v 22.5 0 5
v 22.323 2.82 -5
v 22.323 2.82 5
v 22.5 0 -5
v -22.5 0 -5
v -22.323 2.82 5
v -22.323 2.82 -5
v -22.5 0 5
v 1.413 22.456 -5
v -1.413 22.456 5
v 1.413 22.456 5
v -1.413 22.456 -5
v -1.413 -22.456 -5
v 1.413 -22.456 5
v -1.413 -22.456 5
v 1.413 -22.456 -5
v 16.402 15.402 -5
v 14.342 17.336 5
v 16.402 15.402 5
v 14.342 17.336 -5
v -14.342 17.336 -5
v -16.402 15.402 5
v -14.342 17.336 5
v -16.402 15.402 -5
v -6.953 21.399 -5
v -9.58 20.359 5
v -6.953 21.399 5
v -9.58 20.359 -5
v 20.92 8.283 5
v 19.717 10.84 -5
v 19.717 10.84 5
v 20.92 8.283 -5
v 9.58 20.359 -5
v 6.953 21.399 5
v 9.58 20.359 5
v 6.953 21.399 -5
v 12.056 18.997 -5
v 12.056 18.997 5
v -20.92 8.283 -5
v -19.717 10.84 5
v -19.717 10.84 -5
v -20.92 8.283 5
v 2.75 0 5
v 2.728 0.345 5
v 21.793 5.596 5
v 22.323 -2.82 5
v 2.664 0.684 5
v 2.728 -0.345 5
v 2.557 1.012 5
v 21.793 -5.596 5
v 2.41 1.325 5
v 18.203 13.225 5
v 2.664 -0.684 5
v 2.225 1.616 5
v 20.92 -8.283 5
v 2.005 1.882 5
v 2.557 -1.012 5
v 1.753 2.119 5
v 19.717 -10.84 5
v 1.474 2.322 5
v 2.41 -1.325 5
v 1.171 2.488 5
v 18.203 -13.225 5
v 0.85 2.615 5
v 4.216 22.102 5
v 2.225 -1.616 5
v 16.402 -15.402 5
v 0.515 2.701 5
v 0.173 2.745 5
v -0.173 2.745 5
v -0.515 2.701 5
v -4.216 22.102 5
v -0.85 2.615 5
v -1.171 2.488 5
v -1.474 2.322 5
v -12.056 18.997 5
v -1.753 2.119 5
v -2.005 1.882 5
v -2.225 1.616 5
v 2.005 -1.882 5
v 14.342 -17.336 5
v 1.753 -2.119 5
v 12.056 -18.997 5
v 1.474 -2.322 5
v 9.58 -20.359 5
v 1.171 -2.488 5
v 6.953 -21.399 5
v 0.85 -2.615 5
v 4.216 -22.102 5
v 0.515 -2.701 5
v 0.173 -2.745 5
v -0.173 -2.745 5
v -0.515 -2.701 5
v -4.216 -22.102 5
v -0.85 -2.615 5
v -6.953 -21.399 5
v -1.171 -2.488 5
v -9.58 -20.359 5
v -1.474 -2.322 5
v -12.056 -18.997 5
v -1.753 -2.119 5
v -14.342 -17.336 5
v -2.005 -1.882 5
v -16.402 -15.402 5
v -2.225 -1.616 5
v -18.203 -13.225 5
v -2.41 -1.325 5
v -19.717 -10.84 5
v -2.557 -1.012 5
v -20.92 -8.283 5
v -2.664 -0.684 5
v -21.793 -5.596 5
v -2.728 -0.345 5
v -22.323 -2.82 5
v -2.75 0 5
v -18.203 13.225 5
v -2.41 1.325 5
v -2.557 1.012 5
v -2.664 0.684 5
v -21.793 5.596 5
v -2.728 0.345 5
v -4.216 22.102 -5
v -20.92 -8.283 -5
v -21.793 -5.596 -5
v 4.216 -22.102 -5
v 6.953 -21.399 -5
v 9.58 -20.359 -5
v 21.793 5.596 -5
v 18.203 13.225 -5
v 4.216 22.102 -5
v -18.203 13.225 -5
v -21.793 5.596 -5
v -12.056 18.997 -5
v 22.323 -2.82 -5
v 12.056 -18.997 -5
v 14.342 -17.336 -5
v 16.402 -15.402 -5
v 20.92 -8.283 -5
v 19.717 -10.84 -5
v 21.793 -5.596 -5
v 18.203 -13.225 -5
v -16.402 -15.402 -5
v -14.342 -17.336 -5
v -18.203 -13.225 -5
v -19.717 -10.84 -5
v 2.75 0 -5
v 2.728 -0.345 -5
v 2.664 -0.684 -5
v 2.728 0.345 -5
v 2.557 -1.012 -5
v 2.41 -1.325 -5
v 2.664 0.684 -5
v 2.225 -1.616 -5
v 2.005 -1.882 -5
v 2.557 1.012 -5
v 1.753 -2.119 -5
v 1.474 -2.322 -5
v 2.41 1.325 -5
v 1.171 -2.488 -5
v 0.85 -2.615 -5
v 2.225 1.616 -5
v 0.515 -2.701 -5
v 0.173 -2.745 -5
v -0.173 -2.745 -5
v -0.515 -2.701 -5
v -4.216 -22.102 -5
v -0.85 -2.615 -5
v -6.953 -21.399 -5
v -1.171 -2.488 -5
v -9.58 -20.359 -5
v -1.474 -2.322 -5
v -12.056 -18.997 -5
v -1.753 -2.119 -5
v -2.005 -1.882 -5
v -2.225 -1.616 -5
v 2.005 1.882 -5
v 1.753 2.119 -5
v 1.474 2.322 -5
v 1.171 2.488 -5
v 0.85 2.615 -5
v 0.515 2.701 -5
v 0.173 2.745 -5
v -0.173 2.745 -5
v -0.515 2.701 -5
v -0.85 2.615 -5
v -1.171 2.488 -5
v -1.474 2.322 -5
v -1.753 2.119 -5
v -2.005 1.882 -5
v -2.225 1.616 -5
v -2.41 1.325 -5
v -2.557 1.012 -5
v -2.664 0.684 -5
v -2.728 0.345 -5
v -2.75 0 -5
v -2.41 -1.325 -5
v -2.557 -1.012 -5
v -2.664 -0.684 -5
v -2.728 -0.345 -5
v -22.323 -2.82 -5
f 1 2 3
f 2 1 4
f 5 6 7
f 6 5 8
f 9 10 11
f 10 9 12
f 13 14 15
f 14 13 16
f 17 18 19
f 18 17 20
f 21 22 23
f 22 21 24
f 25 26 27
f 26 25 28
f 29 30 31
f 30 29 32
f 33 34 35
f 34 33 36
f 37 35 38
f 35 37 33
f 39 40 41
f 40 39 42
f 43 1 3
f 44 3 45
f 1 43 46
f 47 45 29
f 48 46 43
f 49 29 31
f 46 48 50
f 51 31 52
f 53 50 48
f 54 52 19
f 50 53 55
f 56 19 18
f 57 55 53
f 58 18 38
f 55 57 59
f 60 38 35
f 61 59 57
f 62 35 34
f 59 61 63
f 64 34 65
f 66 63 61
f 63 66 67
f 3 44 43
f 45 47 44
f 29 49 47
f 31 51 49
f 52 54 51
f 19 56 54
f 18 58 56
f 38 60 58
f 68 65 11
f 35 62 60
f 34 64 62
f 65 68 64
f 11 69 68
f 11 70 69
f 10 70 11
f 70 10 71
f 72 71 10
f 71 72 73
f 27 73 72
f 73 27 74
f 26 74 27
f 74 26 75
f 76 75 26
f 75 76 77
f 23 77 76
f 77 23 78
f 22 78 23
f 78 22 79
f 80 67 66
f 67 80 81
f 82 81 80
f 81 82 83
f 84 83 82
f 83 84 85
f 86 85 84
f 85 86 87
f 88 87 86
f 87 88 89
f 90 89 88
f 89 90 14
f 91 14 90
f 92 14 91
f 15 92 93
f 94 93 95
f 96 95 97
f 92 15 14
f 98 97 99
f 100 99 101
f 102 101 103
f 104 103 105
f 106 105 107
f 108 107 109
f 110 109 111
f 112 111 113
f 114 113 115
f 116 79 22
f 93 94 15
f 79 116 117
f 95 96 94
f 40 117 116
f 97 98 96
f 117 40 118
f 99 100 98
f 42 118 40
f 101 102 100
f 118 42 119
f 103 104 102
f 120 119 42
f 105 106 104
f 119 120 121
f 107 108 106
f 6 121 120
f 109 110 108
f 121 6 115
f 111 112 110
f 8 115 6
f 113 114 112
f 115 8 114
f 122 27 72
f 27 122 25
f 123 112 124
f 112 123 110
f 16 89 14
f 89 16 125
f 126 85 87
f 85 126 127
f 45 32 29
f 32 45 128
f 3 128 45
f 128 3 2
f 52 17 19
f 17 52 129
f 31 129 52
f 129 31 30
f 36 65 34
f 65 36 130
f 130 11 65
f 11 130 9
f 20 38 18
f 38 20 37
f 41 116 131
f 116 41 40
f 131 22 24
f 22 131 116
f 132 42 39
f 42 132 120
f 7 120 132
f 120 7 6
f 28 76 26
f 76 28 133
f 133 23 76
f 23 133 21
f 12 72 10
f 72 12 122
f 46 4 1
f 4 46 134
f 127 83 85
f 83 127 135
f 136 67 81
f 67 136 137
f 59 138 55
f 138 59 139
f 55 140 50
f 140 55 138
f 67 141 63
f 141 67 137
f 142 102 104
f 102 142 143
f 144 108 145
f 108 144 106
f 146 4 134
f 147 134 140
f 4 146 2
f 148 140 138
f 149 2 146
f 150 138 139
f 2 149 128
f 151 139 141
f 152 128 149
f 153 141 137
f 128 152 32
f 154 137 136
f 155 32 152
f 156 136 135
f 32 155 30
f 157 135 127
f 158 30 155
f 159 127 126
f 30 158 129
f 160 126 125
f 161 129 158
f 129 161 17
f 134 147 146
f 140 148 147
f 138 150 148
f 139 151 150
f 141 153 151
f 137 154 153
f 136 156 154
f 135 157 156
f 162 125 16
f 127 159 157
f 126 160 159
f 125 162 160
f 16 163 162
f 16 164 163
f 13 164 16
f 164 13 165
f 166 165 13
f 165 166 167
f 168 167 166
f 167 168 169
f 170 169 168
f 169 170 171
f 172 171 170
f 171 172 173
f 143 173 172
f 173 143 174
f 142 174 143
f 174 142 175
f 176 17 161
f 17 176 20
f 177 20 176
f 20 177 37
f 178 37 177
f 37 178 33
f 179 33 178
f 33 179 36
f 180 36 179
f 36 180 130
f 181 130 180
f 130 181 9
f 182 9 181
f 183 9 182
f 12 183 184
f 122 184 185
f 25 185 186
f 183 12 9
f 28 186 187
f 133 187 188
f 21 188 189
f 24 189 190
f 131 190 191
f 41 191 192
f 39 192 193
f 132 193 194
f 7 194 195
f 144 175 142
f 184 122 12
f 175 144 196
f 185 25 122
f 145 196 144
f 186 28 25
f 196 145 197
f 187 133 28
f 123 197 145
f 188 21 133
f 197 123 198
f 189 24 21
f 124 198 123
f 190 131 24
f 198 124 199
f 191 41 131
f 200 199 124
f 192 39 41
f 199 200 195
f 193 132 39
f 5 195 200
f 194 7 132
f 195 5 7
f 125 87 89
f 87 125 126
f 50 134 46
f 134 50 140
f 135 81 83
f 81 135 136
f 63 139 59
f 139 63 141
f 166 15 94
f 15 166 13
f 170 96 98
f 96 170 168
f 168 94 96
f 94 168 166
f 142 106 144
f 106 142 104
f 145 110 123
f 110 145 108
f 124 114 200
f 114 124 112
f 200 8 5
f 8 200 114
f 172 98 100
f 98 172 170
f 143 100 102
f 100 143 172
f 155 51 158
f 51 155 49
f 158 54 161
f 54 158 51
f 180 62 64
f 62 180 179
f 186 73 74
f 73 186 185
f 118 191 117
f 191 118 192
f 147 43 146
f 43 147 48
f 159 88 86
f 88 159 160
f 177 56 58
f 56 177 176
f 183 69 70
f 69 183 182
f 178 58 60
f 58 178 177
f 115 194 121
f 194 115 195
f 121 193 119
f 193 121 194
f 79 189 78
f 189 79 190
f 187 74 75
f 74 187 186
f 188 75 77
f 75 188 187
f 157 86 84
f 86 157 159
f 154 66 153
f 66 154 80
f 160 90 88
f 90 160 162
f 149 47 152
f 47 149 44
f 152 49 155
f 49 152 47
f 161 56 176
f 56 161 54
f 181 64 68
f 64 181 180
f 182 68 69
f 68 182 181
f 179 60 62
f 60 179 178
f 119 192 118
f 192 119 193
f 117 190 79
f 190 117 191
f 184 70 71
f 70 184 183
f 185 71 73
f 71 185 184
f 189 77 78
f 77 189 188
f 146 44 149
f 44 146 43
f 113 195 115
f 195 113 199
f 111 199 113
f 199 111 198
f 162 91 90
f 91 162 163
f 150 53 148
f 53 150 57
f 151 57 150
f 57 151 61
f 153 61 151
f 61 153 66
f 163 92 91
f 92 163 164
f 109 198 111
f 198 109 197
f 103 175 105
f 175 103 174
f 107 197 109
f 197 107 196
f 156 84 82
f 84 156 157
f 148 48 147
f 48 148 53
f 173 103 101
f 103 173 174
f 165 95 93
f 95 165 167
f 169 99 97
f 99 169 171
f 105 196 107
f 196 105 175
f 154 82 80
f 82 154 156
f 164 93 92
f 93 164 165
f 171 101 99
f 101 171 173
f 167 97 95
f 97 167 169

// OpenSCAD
$fn = 50;


difference() {
	union() {
		translate(v = [0, 0, -5.0000000000]) {
			cylinder(h = 10, r = 22.5000000000);
		}
	}
	union() {
		translate(v = [0, 0, -100.0000000000]) {
			cylinder(h = 200, r = 2.7500000000);
		}
	}
}
